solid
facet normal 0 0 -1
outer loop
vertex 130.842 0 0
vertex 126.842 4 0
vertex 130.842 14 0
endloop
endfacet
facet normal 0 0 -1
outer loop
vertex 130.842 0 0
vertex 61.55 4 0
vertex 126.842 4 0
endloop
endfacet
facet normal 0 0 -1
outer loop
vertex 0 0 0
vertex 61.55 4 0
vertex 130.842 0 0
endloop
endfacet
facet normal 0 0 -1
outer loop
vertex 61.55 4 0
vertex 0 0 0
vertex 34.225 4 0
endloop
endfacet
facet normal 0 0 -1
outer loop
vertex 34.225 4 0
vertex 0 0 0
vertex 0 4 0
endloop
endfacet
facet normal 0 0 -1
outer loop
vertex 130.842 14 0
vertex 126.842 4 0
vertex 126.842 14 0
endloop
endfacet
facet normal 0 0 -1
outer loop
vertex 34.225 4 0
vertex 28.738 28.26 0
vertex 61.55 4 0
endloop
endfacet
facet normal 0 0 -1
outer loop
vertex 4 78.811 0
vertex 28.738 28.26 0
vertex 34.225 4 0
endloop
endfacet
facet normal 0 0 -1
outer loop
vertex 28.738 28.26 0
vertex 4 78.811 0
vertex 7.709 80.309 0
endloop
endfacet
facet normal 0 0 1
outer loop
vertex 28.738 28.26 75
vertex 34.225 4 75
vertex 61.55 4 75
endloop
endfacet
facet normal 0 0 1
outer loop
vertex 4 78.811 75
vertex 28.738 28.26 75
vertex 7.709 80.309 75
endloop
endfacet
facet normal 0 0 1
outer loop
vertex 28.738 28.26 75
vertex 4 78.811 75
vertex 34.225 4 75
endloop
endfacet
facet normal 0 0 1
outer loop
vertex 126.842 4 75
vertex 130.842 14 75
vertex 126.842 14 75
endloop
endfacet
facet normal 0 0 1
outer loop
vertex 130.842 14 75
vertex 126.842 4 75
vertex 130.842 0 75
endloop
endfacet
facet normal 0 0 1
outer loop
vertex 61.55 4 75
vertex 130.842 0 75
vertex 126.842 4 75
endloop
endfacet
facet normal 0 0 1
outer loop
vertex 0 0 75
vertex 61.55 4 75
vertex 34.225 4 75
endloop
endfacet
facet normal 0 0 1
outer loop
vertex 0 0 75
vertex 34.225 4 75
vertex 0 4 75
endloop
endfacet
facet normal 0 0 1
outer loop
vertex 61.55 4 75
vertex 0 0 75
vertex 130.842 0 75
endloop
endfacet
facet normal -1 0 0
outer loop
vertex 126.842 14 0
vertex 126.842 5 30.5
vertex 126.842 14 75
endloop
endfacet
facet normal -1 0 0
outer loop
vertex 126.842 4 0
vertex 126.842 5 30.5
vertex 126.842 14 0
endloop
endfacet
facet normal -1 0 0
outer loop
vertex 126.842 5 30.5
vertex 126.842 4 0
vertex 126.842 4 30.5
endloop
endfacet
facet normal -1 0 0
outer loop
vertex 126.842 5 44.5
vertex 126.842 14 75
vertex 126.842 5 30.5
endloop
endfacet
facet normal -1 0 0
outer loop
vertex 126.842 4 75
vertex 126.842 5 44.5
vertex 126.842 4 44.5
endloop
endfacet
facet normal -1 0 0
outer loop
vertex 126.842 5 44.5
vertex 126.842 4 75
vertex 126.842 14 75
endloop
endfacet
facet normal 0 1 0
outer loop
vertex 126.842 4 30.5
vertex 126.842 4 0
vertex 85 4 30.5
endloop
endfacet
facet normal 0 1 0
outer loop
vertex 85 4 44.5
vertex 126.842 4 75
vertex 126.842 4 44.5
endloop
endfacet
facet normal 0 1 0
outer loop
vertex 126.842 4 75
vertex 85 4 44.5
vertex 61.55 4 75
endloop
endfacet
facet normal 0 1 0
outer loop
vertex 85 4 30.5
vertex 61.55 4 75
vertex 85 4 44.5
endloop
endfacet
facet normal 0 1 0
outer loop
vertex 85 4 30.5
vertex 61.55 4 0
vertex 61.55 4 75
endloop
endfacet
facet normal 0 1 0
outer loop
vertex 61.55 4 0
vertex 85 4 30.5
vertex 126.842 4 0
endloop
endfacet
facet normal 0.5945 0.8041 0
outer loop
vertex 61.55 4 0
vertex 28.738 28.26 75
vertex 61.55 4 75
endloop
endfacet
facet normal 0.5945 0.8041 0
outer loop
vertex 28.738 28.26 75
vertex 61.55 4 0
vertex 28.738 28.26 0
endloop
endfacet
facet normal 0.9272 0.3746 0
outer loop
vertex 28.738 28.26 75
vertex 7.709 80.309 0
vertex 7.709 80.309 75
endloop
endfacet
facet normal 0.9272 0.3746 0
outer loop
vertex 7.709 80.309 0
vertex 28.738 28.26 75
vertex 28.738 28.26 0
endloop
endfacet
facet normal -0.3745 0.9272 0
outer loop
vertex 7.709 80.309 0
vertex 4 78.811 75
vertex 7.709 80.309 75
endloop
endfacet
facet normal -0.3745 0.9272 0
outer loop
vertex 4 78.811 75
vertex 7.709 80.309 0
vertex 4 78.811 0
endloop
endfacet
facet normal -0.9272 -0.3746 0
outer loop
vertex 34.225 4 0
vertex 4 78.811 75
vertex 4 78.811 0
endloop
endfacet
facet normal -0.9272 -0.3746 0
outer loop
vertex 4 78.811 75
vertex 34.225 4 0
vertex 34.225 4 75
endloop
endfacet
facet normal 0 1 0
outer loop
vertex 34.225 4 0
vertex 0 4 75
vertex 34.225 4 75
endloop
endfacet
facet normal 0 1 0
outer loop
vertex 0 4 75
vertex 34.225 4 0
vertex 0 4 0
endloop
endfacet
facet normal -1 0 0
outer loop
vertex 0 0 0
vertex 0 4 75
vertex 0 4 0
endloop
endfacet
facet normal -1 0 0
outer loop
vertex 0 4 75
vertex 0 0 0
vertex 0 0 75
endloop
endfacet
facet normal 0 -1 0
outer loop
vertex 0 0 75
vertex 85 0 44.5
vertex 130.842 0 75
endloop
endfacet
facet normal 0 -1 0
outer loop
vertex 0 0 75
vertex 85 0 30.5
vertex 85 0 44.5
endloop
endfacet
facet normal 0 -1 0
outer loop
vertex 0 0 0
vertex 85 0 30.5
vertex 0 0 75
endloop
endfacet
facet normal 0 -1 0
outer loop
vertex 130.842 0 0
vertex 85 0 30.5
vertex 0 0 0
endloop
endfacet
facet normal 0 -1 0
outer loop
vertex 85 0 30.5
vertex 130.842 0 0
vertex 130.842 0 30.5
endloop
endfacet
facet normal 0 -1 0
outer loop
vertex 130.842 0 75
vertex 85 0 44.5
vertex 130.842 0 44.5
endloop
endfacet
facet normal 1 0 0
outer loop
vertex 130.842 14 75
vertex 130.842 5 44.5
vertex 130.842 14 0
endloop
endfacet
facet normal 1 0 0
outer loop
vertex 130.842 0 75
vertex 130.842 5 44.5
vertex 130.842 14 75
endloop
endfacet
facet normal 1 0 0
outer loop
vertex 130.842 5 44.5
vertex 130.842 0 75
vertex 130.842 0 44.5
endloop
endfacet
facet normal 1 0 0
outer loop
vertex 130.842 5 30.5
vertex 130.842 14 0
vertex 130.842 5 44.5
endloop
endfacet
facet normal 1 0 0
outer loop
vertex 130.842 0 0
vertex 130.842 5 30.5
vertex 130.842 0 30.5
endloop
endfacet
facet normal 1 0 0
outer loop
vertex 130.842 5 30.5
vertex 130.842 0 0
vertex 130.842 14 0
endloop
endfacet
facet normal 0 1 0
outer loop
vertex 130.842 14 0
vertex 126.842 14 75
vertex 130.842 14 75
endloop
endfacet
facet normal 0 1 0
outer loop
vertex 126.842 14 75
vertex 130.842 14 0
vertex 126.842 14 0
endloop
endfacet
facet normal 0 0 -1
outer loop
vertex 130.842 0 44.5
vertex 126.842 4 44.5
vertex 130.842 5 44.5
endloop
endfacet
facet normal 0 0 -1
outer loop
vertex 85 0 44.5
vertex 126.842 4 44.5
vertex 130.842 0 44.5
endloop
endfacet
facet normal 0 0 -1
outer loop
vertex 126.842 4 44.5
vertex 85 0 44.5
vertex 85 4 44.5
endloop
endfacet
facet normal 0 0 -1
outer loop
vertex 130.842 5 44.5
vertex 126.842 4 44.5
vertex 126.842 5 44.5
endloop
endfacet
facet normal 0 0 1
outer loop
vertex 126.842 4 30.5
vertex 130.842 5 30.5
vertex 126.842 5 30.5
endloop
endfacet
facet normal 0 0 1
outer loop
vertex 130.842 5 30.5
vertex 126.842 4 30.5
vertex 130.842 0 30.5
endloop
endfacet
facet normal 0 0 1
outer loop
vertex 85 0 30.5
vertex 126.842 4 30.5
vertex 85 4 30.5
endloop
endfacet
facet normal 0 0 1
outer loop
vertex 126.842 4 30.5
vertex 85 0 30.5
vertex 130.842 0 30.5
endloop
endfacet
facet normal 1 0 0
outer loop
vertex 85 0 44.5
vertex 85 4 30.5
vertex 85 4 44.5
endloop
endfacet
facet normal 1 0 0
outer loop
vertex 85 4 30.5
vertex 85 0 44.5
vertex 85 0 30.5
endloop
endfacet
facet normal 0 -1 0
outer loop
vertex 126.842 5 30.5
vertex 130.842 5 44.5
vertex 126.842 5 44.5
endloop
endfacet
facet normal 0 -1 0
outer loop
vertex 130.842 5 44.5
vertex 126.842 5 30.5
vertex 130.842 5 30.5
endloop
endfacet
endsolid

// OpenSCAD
// Foldless phone/tablet stand with charging-cable slot. Print standing as modeled (profile on bed). No supports.
w        = 75;    // stand width
base_len = 95;
t        = 4;
angle    = 68;    // back angle from horizontal
back_len = 85;
lip_h    = 14;    // front lip holding the device
slot_w   = 14;    // cable slot width
$fn = 64;

module profile() {
    x0 = back_len * cos(angle) + t;     // pivot so the back leans rearward over the base
    // base
    square([x0 + base_len, t]);
    // front lip
    translate([x0 + base_len - t, 0]) square([t, lip_h]);
    // leaning back
    translate([x0, 0]) rotate(90 - angle) square([t, back_len]);
    // gusset where back meets base (device side), overlapping both walls
    fx = x0 + t * sin(90 - angle) * 0 + t * cos(90 - angle);       // front-face foot of the back panel
    fy = t * sin(90 - angle);
    polygon([[fx - 1, 0.5], [fx + 22, 0.5], [fx + 22, t], [fx - 30 * cos(angle) - 1, fy + 30 * sin(angle)]]);
}

difference() {
    linear_extrude(height = w) profile();
    // cable slot through lip + base middle
    translate([base_len - 10, -1, w / 2 - slot_w / 2]) cube([60, t + 2, slot_w]);
}
